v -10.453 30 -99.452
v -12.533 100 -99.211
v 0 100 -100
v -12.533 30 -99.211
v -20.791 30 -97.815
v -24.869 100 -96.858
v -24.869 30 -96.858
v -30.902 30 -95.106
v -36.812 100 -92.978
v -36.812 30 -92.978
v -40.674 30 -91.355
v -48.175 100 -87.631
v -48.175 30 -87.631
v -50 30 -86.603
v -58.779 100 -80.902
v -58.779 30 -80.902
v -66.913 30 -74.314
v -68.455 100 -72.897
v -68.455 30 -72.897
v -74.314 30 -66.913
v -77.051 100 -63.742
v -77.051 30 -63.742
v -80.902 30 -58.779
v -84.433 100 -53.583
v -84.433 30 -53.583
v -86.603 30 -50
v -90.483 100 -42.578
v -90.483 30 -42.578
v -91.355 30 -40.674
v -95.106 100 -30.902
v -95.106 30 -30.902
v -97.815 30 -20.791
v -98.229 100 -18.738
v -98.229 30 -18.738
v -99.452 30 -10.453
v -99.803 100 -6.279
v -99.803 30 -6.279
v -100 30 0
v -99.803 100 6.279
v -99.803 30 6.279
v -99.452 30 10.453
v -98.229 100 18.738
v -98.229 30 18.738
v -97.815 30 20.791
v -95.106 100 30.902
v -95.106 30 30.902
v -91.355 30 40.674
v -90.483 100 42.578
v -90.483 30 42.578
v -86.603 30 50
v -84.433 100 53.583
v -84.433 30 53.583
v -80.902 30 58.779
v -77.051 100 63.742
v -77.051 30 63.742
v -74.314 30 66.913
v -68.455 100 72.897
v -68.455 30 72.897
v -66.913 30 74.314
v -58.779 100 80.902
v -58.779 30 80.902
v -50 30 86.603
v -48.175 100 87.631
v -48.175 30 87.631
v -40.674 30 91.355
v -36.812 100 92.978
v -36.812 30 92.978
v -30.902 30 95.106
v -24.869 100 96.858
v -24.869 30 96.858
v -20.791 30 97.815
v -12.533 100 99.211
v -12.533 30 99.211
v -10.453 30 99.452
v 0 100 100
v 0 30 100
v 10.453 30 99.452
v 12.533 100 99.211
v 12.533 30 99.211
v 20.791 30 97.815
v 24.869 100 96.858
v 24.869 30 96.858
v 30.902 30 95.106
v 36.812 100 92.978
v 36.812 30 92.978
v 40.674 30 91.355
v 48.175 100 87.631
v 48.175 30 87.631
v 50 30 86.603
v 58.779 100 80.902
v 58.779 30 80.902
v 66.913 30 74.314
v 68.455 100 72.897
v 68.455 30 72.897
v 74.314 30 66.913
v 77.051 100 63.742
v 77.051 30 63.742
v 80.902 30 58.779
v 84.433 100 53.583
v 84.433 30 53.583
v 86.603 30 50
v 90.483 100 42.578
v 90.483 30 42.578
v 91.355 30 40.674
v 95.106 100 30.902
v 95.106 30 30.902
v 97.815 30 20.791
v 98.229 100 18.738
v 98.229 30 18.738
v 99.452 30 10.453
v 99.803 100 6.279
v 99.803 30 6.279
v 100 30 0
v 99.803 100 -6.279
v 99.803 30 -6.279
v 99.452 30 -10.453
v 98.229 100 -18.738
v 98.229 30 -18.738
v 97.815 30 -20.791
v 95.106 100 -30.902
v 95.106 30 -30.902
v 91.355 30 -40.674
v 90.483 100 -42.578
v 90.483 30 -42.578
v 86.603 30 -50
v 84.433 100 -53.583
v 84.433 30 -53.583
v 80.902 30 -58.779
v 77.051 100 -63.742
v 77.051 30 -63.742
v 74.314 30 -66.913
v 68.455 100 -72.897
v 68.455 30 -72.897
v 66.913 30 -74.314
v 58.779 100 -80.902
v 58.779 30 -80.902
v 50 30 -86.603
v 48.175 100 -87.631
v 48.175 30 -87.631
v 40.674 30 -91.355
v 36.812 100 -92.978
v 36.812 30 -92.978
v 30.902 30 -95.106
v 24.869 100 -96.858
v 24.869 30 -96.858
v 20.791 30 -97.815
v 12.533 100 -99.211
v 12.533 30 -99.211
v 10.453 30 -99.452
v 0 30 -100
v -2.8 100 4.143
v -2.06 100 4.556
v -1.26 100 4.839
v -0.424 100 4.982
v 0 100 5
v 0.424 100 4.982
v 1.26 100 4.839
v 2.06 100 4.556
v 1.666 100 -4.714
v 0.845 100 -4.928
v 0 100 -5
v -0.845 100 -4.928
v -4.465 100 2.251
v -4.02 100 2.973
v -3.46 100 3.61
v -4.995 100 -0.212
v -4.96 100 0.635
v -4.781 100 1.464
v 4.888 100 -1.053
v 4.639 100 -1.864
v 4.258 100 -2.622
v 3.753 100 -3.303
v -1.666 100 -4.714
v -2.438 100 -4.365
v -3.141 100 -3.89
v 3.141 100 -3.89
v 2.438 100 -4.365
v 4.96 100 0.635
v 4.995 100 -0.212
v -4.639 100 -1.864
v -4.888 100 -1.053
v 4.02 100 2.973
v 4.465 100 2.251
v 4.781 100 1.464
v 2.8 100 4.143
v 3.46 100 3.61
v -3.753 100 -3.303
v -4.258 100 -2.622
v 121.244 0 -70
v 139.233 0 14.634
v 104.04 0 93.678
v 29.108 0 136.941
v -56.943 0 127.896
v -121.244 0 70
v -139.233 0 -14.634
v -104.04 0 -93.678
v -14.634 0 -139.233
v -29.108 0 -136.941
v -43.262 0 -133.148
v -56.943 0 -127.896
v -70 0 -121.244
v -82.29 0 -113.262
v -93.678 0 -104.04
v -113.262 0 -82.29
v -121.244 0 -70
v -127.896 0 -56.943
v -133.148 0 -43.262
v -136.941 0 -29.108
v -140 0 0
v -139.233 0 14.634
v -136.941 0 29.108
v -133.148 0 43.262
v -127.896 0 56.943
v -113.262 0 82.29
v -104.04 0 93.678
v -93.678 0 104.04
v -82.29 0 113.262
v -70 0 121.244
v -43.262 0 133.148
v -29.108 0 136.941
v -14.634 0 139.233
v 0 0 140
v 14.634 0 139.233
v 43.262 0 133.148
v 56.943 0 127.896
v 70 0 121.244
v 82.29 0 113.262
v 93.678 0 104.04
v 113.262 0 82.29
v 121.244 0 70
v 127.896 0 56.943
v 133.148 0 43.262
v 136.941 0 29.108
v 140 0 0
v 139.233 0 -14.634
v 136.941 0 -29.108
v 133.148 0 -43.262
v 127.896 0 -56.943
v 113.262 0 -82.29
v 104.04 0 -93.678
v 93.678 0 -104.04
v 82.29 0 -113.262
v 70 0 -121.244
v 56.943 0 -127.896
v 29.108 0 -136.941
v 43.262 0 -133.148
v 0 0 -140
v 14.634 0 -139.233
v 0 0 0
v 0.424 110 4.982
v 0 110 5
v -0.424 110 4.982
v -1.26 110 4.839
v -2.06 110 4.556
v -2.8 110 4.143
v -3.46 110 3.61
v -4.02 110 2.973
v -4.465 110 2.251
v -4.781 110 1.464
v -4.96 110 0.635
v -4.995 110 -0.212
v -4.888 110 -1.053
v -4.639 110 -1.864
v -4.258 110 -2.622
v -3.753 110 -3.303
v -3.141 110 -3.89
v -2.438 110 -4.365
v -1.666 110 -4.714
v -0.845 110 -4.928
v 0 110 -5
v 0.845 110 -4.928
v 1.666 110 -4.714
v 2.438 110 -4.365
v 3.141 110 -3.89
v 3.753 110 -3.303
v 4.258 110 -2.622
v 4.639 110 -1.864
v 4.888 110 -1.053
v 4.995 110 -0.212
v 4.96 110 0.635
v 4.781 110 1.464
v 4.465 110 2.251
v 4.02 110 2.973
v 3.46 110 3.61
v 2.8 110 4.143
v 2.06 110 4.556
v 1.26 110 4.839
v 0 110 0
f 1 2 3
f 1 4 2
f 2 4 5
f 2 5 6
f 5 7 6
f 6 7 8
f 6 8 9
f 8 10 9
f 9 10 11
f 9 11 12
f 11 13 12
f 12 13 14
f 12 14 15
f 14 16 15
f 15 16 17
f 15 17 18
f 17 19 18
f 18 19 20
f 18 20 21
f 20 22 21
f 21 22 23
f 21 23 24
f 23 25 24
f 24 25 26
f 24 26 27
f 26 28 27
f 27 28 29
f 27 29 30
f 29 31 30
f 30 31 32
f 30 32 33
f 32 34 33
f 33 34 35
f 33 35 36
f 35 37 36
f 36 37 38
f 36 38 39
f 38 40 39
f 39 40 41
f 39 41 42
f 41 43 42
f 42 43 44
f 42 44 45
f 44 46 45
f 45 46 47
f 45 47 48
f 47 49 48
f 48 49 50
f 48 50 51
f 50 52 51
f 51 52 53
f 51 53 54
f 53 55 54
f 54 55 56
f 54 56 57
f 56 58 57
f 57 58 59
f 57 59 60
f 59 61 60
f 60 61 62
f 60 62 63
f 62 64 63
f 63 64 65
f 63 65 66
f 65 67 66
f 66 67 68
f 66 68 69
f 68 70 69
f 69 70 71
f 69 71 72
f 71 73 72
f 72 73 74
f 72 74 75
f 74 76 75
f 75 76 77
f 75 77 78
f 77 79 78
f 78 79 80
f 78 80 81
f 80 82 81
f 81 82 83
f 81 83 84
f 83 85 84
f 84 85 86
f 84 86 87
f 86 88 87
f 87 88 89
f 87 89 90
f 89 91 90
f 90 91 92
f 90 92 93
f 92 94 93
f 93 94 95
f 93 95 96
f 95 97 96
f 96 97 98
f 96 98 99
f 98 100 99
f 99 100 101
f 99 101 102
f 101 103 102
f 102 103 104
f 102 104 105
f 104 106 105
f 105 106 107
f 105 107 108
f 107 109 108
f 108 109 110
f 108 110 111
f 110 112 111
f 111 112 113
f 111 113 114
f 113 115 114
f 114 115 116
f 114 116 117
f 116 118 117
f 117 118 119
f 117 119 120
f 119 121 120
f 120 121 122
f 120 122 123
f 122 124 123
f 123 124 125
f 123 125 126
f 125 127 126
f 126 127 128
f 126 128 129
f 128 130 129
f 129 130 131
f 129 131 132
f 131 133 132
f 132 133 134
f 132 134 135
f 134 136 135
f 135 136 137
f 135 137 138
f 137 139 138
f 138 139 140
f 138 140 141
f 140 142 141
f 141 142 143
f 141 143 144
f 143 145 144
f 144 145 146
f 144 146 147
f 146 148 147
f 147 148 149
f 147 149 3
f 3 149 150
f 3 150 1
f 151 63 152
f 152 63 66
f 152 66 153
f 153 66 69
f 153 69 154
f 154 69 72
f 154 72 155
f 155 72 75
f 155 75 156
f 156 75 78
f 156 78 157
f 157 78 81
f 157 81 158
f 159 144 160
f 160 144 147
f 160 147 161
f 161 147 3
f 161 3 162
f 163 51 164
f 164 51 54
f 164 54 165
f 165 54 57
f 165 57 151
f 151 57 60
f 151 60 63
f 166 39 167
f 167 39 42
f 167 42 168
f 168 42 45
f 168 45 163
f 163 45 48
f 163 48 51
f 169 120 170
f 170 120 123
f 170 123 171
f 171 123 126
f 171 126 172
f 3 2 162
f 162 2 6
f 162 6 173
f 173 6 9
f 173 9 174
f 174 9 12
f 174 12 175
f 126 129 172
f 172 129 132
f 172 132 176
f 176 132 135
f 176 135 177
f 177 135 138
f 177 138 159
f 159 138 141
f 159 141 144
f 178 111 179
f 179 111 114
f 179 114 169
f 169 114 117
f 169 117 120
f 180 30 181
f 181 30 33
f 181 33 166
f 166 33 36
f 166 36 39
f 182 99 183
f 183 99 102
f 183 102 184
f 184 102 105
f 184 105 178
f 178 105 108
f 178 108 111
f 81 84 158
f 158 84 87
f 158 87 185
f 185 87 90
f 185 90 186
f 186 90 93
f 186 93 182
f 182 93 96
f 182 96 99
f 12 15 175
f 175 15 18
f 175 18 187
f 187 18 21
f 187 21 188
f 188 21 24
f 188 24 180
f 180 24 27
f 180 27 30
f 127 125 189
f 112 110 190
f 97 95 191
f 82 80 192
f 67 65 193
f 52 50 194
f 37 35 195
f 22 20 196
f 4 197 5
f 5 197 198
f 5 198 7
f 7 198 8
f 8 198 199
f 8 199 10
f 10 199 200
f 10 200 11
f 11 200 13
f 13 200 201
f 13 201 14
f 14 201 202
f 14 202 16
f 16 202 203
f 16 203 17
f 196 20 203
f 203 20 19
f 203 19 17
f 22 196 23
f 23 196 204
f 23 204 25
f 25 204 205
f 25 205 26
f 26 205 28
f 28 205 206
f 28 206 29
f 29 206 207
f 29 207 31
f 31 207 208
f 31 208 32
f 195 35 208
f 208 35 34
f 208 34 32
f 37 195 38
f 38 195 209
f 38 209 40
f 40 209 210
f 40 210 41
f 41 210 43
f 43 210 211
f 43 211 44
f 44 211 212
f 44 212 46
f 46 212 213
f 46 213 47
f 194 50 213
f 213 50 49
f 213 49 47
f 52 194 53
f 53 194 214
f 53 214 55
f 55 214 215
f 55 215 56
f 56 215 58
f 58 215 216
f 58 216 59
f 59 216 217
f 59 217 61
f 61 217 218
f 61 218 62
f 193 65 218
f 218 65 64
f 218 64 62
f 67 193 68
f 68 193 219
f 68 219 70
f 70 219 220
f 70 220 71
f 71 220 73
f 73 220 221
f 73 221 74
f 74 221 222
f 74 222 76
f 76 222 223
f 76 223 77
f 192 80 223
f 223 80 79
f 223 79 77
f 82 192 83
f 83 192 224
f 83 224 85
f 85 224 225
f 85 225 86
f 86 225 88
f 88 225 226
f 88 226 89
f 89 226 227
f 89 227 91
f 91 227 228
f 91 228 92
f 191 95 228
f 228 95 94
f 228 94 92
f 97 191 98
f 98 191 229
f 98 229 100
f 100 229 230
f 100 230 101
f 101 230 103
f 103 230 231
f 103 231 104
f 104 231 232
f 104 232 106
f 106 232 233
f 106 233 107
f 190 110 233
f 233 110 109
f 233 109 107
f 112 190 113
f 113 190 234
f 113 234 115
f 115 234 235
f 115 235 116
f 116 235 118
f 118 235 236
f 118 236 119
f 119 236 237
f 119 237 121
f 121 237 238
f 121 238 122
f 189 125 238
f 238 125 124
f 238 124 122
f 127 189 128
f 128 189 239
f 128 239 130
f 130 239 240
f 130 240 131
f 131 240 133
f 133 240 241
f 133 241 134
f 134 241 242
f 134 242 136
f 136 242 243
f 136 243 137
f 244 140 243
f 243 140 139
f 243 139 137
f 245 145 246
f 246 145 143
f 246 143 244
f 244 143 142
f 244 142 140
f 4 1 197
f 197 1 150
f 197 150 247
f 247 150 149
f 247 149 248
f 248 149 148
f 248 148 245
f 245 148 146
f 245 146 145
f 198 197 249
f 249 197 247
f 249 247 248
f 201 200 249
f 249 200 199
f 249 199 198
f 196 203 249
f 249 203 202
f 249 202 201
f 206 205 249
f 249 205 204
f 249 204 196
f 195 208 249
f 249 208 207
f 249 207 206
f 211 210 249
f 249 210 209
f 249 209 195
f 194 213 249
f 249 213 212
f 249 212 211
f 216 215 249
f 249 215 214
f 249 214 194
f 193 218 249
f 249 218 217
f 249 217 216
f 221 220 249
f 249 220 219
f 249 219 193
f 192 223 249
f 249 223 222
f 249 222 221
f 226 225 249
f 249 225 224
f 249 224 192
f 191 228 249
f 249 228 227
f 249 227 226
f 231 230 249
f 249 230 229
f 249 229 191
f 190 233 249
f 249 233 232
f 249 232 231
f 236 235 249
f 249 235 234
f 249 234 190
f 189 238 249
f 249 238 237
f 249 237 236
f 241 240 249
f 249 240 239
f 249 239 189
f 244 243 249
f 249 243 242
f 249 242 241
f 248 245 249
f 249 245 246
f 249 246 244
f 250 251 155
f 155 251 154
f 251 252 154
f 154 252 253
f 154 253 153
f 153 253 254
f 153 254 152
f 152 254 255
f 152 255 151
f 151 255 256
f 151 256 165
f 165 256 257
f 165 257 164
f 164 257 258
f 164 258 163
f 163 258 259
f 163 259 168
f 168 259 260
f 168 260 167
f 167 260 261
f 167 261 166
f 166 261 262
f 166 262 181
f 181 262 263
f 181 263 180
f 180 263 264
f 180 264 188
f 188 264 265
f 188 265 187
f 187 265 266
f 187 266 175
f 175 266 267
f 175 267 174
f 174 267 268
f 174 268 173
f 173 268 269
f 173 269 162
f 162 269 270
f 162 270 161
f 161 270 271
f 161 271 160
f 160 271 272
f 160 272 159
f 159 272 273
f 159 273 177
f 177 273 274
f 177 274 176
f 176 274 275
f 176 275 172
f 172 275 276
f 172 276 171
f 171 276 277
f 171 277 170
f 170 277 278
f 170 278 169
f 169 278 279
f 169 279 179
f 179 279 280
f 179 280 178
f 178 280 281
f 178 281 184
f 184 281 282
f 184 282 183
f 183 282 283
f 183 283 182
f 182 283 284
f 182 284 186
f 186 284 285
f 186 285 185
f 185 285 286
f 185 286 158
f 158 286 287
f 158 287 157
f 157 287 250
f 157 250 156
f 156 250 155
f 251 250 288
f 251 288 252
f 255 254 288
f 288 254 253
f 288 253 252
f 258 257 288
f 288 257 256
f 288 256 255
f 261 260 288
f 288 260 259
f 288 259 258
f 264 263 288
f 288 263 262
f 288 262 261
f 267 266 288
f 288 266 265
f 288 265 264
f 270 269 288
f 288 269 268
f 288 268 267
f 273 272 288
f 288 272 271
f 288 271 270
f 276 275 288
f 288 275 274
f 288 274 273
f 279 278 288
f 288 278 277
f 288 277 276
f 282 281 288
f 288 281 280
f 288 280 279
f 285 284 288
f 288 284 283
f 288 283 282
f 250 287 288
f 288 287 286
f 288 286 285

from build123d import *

# Parameters (mm, degrees)
SKETCH1_R           = 100
BOSS_EXTRUDE1_DEPTH = 100
SKETCH3_R           = 5
BOSS_EXTRUDE2_DEPTH = 10


with BuildPart() as part:
    # Sketch1 → Boss-Extrude1 (new body)
    with BuildSketch(Plane(origin=(0, 0, 0), x_dir=(1, 0, 0), z_dir=(0, 1, 0))):
        Circle(SKETCH1_R)
    extrude(amount=BOSS_EXTRUDE1_DEPTH)

    # Sketch2 → Revolve1 (revolve)
    with BuildSketch(Plane(origin=(0, 0, 0), x_dir=(0, 0, -1), z_dir=(1, 0, 0))):
        Polygon((-100, 0), (-140, 0), (-100, 30), align=None)
    revolve(axis=Axis((0, 0, 0), (0, 1, 0)))

    # Sketch3 → Boss-Extrude2 (add)
    with BuildSketch(Plane(origin=(0, 100, 0), x_dir=(1, 0, 0), z_dir=(0, 1, 0))):
        Circle(SKETCH3_R)
    extrude(amount=BOSS_EXTRUDE2_DEPTH)


solid = part.part
